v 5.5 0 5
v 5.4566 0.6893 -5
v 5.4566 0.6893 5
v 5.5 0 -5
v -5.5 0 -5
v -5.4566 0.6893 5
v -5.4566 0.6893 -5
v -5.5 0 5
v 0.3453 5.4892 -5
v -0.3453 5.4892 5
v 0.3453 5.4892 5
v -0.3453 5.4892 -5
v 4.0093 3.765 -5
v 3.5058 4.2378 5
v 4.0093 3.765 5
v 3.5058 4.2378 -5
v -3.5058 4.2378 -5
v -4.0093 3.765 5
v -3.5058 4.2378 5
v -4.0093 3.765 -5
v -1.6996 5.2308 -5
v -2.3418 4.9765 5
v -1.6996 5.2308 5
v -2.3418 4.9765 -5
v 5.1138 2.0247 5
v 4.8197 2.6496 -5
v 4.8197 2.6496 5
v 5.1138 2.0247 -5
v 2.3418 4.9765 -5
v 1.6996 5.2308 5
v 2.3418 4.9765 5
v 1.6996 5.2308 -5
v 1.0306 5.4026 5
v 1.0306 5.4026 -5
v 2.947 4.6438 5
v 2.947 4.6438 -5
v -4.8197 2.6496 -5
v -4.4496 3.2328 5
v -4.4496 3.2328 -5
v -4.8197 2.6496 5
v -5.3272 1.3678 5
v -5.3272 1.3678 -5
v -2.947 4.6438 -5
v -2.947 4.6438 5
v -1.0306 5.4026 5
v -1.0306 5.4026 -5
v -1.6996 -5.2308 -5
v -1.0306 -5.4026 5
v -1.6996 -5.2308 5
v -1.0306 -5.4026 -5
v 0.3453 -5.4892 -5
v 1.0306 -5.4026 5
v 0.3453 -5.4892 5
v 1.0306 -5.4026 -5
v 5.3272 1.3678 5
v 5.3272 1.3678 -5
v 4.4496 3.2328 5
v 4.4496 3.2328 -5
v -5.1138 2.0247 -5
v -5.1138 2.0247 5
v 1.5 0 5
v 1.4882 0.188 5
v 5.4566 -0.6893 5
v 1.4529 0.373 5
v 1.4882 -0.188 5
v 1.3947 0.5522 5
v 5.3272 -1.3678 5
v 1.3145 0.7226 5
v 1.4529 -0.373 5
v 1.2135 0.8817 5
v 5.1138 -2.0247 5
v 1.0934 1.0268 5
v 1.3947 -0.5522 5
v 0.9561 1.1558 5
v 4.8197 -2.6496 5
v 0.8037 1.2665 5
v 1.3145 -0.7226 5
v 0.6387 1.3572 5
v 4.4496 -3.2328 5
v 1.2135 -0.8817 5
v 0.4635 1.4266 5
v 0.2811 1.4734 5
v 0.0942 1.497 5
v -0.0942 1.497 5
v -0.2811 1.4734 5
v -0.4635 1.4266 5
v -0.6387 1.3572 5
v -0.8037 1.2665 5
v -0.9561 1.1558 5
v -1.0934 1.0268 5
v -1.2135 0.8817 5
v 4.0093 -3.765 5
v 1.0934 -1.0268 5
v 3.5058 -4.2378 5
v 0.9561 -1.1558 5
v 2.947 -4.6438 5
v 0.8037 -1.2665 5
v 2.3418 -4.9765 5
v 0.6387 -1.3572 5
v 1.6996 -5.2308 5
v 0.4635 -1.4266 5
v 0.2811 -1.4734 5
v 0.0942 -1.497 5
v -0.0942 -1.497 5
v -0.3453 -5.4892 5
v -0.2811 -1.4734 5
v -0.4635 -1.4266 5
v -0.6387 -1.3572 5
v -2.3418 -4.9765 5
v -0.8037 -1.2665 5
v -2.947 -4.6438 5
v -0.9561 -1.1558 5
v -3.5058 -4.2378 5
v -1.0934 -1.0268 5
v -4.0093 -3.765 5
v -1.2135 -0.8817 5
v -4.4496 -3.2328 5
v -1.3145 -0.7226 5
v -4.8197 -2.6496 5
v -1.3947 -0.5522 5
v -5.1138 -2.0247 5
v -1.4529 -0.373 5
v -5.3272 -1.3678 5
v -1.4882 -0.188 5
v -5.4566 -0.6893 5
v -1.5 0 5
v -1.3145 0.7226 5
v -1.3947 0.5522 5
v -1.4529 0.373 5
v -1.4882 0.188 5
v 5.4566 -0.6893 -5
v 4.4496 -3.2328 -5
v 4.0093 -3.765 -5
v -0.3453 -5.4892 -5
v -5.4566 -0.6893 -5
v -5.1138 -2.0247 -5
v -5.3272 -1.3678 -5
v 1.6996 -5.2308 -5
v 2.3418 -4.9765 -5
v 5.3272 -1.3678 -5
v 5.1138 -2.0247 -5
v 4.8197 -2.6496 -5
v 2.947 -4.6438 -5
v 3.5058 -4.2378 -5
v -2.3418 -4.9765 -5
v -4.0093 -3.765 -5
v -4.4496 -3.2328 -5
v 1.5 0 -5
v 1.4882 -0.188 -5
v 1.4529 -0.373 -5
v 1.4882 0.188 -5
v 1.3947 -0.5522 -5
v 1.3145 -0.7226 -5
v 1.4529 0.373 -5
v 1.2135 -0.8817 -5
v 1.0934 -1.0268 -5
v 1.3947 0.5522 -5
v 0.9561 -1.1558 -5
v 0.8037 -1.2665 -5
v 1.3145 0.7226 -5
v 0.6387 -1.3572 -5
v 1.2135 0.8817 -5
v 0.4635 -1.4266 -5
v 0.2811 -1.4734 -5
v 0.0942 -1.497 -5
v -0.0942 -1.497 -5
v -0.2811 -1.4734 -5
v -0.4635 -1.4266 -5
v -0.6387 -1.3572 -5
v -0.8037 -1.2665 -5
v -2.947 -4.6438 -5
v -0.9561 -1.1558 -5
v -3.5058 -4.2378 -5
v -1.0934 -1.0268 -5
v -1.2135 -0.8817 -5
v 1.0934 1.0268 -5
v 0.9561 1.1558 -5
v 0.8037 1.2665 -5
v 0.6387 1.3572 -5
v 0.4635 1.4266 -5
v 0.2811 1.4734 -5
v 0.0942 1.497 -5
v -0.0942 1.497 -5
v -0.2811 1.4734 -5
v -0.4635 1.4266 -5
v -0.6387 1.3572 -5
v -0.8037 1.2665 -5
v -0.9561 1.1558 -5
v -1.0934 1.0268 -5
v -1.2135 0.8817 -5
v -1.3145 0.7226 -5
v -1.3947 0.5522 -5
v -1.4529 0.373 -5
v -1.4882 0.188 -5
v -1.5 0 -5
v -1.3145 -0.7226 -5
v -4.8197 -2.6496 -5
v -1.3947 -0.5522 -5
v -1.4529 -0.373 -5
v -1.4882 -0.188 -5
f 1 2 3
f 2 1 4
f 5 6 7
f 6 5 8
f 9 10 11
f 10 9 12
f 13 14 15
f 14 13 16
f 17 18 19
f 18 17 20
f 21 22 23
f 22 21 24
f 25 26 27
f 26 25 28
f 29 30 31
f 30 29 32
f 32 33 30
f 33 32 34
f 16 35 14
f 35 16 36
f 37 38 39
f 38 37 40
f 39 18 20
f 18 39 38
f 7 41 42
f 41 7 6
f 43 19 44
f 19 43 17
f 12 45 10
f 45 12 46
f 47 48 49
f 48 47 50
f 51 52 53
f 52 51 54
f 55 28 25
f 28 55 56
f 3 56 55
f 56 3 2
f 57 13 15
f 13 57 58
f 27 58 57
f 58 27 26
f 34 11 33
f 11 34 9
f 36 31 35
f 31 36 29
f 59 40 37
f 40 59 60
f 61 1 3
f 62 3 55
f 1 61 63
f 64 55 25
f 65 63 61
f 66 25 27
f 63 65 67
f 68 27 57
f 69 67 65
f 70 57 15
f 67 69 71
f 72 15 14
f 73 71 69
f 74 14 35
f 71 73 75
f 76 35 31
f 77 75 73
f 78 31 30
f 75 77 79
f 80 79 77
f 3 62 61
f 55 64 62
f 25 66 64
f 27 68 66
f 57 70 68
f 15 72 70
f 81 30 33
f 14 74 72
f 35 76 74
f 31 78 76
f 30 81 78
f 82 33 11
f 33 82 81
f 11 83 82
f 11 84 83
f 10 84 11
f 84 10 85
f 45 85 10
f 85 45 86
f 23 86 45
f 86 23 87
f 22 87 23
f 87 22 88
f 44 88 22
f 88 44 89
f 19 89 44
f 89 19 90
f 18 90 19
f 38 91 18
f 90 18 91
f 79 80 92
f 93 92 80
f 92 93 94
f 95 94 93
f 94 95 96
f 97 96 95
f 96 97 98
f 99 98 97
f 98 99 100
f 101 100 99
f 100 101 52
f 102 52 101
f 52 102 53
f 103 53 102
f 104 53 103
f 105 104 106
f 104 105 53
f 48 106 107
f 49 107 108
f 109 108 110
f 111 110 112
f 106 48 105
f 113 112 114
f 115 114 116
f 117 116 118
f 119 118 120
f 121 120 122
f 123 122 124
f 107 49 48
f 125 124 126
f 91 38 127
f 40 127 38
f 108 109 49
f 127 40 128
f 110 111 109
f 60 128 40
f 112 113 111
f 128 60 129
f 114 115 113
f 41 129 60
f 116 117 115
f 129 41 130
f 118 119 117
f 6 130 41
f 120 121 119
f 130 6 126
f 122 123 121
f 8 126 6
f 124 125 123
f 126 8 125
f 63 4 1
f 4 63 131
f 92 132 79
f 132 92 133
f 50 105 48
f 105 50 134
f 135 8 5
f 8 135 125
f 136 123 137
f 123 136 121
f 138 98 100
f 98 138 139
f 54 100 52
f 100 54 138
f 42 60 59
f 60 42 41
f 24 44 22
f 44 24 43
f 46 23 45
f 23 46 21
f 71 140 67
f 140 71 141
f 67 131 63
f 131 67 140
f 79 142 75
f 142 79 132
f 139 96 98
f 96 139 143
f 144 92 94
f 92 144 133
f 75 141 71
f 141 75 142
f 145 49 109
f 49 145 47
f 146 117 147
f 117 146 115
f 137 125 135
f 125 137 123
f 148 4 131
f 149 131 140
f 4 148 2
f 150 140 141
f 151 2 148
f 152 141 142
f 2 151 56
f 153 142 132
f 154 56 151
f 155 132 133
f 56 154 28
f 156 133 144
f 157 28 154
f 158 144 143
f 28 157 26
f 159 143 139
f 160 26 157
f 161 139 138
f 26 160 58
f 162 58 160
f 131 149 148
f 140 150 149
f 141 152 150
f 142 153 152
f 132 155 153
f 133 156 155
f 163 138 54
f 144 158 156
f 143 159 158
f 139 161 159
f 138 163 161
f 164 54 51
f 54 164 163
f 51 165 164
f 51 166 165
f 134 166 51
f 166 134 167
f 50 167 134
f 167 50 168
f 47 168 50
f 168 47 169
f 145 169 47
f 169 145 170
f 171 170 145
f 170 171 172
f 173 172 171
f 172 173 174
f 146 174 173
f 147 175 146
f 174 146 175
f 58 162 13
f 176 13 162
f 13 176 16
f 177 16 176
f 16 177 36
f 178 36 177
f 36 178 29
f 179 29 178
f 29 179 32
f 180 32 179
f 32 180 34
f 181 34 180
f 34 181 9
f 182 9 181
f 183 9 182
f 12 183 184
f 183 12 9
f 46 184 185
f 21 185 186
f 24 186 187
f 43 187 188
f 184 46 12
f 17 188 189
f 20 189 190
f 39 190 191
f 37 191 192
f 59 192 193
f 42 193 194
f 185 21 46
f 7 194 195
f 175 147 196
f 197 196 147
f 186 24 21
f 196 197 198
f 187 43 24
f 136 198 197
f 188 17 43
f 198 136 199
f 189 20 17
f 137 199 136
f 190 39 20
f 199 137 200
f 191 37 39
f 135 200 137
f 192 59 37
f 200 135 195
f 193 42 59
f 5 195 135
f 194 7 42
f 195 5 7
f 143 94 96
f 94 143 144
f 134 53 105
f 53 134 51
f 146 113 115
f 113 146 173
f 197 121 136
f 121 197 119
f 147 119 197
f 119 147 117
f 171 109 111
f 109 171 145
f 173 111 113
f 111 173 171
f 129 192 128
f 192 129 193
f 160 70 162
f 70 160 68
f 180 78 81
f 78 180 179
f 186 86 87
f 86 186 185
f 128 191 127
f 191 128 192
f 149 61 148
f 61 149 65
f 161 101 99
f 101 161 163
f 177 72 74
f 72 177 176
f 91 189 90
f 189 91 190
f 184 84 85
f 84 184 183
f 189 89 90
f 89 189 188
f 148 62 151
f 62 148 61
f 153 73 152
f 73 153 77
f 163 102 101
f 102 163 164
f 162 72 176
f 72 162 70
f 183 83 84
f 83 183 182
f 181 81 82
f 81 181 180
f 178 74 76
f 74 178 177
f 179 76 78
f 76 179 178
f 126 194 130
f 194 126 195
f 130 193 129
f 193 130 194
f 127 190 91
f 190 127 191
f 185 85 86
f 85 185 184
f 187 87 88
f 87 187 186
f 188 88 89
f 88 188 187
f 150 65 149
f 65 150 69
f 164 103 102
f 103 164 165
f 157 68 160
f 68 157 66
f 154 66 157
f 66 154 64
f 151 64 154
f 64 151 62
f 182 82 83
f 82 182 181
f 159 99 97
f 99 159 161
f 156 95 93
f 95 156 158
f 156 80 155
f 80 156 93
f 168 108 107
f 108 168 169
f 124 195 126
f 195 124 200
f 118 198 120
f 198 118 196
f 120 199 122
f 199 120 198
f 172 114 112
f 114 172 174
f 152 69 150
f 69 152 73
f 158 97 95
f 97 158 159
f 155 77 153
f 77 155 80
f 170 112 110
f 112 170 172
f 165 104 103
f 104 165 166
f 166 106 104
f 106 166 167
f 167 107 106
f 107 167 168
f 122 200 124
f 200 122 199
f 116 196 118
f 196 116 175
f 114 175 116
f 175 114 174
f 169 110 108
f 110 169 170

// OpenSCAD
$fn = 50;


difference() {
	union() {
		translate(v = [0, 0, -5.0000000000]) {
			cylinder(h = 10, r = 5.5000000000);
		}
	}
	union() {
		translate(v = [0, 0, -100.0000000000]) {
			cylinder(h = 200, r = 1.5000000000);
		}
	}
}
